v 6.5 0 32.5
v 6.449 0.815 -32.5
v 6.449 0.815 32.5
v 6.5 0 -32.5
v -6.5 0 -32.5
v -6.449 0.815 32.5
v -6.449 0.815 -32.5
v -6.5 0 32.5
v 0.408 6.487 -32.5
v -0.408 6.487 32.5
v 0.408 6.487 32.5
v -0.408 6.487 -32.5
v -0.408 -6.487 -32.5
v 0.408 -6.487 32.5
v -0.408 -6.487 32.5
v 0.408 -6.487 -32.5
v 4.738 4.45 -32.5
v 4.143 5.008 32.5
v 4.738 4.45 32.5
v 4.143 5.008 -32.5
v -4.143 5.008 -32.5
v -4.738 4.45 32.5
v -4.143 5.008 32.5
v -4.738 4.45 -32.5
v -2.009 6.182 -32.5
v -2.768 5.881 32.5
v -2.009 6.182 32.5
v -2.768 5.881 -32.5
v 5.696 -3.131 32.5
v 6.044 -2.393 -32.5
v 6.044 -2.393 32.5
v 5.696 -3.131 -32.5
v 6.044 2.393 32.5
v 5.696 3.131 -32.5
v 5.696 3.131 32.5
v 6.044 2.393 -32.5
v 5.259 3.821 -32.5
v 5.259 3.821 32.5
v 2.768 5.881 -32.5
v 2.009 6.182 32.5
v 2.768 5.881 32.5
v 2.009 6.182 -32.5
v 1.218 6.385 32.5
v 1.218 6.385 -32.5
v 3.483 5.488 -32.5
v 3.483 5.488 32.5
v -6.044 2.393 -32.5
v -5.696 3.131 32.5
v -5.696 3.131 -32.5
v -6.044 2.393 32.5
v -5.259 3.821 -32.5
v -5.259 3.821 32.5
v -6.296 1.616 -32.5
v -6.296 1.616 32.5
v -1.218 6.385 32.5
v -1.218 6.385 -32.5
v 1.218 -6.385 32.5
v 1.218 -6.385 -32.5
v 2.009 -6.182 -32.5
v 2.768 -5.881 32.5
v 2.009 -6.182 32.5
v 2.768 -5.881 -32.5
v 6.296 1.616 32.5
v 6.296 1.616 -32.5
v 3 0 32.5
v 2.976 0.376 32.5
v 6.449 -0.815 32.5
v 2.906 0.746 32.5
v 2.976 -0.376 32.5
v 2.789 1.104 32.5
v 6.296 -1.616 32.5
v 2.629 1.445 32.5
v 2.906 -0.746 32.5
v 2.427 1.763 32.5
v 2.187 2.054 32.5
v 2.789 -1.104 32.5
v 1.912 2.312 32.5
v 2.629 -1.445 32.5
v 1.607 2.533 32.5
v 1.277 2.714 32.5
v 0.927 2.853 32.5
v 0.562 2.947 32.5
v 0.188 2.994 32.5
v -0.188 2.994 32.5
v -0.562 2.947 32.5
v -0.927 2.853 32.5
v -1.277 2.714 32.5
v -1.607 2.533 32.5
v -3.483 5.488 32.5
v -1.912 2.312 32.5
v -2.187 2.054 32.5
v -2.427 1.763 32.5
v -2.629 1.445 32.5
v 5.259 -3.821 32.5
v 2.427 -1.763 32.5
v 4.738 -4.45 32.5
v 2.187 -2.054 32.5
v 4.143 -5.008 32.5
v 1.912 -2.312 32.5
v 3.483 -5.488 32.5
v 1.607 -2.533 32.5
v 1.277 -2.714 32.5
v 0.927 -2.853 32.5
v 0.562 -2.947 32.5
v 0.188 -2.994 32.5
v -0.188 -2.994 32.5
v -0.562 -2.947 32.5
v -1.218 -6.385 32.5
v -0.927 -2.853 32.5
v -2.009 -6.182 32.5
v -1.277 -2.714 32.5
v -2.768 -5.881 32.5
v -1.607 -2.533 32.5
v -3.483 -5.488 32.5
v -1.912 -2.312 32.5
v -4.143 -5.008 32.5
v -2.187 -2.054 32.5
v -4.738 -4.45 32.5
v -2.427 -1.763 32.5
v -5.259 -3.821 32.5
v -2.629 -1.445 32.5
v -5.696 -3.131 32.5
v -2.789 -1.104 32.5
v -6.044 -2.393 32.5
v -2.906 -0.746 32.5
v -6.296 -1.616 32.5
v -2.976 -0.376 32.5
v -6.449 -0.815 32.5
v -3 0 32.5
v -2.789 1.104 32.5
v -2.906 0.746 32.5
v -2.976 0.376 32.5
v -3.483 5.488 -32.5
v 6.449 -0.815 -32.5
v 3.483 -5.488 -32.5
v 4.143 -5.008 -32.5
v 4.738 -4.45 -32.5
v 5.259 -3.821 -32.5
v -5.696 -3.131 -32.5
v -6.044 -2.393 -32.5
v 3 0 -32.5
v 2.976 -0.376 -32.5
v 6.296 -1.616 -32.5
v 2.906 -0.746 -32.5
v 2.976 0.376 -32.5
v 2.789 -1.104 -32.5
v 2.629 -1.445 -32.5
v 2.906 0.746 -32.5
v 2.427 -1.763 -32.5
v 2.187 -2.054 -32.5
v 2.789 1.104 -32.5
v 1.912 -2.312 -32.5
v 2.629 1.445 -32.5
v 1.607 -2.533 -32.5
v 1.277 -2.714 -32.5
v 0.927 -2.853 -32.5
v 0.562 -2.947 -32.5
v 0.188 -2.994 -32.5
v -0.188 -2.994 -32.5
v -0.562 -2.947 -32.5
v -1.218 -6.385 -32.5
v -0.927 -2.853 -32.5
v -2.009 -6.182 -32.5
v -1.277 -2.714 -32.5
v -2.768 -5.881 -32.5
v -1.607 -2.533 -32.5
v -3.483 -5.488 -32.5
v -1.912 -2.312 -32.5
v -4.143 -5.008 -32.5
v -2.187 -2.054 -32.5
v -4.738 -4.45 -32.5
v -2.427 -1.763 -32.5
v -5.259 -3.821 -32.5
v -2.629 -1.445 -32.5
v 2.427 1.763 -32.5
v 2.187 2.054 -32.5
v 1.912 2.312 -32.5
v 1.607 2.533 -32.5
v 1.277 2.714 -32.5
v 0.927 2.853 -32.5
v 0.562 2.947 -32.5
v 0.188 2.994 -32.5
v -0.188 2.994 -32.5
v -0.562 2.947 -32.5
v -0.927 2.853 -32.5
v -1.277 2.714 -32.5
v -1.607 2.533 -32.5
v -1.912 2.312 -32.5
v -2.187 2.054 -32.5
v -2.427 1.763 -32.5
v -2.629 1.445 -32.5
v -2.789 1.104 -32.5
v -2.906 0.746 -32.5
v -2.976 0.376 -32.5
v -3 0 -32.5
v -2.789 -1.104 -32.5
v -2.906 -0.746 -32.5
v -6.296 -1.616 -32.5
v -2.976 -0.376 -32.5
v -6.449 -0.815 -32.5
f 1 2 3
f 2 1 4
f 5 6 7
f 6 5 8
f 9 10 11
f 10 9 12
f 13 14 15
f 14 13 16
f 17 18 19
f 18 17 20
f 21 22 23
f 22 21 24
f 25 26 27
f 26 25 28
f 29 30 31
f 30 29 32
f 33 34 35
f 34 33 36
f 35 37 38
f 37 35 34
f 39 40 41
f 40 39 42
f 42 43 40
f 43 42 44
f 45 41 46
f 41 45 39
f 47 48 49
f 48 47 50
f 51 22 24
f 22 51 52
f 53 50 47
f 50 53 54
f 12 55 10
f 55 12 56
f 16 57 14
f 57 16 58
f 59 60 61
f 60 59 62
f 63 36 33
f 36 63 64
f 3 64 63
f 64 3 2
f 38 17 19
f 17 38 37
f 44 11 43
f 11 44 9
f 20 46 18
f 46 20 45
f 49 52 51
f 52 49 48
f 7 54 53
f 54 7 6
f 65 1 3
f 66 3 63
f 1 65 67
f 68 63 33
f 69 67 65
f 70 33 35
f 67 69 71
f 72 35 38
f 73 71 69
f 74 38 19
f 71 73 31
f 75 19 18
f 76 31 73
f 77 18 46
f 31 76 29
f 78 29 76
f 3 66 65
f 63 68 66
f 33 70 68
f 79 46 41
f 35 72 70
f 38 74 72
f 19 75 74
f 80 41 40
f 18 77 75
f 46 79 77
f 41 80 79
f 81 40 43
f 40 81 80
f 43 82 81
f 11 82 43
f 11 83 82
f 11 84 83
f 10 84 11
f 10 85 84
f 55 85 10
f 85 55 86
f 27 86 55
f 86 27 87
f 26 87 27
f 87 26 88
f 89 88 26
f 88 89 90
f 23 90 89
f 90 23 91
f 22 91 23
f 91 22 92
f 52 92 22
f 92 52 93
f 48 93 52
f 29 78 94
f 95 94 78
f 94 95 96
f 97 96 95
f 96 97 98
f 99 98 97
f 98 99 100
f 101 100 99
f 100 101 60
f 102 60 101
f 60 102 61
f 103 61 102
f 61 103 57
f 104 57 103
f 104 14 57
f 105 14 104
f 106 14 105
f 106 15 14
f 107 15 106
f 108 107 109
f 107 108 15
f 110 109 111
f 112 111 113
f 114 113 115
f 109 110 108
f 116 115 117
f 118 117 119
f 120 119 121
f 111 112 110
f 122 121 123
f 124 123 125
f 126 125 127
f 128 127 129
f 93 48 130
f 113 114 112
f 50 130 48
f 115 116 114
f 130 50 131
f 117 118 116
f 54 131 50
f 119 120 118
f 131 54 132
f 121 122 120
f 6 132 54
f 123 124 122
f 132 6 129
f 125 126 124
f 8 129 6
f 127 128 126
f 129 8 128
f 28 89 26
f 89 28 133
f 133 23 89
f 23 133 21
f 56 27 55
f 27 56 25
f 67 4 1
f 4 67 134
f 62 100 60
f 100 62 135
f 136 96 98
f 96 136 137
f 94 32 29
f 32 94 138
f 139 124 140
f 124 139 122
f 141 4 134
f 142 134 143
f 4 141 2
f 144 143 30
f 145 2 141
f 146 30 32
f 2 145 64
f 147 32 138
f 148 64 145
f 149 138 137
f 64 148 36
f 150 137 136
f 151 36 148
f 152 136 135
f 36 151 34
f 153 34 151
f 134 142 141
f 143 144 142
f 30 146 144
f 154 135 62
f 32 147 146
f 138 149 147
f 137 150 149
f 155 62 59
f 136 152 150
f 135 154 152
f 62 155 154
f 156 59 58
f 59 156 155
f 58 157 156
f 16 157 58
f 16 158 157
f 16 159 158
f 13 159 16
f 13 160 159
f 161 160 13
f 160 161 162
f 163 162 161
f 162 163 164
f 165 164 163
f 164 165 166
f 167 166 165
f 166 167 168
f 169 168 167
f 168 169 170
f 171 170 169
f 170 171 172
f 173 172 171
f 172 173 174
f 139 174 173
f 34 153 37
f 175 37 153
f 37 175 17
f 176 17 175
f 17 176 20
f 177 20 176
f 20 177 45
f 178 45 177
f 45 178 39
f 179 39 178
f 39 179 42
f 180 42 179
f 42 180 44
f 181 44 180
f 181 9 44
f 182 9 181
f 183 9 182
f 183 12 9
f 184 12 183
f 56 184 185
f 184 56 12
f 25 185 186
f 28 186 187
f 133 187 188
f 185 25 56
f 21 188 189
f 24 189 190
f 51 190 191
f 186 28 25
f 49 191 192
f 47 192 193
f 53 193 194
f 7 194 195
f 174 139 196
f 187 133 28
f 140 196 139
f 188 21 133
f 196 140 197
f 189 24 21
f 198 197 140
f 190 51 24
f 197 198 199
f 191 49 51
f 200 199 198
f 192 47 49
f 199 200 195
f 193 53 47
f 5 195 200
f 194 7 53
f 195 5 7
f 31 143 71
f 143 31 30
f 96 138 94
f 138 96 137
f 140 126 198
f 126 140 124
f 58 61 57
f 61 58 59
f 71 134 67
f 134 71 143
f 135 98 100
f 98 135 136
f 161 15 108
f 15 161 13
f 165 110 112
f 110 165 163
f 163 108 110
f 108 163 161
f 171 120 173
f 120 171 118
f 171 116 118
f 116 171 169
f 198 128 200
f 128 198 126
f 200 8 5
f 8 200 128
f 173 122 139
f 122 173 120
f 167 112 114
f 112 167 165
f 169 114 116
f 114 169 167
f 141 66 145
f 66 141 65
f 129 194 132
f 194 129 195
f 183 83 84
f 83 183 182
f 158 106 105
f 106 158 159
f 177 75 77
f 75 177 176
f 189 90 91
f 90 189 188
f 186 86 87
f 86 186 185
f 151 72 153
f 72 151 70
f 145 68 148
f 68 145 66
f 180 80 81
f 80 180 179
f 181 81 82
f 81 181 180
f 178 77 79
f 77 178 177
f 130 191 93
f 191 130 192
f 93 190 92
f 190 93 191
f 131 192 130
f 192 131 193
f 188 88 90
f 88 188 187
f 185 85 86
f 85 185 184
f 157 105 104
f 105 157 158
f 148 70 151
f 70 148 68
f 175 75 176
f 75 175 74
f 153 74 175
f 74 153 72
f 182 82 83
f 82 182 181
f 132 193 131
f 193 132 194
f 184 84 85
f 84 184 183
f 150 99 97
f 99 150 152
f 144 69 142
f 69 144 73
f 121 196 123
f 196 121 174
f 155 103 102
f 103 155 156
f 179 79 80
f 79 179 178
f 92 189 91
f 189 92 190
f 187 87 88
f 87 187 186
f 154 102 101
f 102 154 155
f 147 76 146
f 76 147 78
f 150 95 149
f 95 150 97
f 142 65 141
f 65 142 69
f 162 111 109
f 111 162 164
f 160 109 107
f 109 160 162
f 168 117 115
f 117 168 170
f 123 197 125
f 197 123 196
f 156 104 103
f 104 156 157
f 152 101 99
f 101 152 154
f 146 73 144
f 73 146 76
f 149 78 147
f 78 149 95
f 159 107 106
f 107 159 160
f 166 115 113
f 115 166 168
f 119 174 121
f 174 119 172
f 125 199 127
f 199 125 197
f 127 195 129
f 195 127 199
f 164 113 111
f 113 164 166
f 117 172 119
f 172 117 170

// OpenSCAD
$fn = 50;


difference() {
	union() {
		translate(v = [0, 0, -32.5000000000]) {
			cylinder(h = 65, r = 6.5000000000);
		}
	}
	union() {
		translate(v = [0, 0, -100.0000000000]) {
			cylinder(h = 200, r = 3);
		}
	}
}
